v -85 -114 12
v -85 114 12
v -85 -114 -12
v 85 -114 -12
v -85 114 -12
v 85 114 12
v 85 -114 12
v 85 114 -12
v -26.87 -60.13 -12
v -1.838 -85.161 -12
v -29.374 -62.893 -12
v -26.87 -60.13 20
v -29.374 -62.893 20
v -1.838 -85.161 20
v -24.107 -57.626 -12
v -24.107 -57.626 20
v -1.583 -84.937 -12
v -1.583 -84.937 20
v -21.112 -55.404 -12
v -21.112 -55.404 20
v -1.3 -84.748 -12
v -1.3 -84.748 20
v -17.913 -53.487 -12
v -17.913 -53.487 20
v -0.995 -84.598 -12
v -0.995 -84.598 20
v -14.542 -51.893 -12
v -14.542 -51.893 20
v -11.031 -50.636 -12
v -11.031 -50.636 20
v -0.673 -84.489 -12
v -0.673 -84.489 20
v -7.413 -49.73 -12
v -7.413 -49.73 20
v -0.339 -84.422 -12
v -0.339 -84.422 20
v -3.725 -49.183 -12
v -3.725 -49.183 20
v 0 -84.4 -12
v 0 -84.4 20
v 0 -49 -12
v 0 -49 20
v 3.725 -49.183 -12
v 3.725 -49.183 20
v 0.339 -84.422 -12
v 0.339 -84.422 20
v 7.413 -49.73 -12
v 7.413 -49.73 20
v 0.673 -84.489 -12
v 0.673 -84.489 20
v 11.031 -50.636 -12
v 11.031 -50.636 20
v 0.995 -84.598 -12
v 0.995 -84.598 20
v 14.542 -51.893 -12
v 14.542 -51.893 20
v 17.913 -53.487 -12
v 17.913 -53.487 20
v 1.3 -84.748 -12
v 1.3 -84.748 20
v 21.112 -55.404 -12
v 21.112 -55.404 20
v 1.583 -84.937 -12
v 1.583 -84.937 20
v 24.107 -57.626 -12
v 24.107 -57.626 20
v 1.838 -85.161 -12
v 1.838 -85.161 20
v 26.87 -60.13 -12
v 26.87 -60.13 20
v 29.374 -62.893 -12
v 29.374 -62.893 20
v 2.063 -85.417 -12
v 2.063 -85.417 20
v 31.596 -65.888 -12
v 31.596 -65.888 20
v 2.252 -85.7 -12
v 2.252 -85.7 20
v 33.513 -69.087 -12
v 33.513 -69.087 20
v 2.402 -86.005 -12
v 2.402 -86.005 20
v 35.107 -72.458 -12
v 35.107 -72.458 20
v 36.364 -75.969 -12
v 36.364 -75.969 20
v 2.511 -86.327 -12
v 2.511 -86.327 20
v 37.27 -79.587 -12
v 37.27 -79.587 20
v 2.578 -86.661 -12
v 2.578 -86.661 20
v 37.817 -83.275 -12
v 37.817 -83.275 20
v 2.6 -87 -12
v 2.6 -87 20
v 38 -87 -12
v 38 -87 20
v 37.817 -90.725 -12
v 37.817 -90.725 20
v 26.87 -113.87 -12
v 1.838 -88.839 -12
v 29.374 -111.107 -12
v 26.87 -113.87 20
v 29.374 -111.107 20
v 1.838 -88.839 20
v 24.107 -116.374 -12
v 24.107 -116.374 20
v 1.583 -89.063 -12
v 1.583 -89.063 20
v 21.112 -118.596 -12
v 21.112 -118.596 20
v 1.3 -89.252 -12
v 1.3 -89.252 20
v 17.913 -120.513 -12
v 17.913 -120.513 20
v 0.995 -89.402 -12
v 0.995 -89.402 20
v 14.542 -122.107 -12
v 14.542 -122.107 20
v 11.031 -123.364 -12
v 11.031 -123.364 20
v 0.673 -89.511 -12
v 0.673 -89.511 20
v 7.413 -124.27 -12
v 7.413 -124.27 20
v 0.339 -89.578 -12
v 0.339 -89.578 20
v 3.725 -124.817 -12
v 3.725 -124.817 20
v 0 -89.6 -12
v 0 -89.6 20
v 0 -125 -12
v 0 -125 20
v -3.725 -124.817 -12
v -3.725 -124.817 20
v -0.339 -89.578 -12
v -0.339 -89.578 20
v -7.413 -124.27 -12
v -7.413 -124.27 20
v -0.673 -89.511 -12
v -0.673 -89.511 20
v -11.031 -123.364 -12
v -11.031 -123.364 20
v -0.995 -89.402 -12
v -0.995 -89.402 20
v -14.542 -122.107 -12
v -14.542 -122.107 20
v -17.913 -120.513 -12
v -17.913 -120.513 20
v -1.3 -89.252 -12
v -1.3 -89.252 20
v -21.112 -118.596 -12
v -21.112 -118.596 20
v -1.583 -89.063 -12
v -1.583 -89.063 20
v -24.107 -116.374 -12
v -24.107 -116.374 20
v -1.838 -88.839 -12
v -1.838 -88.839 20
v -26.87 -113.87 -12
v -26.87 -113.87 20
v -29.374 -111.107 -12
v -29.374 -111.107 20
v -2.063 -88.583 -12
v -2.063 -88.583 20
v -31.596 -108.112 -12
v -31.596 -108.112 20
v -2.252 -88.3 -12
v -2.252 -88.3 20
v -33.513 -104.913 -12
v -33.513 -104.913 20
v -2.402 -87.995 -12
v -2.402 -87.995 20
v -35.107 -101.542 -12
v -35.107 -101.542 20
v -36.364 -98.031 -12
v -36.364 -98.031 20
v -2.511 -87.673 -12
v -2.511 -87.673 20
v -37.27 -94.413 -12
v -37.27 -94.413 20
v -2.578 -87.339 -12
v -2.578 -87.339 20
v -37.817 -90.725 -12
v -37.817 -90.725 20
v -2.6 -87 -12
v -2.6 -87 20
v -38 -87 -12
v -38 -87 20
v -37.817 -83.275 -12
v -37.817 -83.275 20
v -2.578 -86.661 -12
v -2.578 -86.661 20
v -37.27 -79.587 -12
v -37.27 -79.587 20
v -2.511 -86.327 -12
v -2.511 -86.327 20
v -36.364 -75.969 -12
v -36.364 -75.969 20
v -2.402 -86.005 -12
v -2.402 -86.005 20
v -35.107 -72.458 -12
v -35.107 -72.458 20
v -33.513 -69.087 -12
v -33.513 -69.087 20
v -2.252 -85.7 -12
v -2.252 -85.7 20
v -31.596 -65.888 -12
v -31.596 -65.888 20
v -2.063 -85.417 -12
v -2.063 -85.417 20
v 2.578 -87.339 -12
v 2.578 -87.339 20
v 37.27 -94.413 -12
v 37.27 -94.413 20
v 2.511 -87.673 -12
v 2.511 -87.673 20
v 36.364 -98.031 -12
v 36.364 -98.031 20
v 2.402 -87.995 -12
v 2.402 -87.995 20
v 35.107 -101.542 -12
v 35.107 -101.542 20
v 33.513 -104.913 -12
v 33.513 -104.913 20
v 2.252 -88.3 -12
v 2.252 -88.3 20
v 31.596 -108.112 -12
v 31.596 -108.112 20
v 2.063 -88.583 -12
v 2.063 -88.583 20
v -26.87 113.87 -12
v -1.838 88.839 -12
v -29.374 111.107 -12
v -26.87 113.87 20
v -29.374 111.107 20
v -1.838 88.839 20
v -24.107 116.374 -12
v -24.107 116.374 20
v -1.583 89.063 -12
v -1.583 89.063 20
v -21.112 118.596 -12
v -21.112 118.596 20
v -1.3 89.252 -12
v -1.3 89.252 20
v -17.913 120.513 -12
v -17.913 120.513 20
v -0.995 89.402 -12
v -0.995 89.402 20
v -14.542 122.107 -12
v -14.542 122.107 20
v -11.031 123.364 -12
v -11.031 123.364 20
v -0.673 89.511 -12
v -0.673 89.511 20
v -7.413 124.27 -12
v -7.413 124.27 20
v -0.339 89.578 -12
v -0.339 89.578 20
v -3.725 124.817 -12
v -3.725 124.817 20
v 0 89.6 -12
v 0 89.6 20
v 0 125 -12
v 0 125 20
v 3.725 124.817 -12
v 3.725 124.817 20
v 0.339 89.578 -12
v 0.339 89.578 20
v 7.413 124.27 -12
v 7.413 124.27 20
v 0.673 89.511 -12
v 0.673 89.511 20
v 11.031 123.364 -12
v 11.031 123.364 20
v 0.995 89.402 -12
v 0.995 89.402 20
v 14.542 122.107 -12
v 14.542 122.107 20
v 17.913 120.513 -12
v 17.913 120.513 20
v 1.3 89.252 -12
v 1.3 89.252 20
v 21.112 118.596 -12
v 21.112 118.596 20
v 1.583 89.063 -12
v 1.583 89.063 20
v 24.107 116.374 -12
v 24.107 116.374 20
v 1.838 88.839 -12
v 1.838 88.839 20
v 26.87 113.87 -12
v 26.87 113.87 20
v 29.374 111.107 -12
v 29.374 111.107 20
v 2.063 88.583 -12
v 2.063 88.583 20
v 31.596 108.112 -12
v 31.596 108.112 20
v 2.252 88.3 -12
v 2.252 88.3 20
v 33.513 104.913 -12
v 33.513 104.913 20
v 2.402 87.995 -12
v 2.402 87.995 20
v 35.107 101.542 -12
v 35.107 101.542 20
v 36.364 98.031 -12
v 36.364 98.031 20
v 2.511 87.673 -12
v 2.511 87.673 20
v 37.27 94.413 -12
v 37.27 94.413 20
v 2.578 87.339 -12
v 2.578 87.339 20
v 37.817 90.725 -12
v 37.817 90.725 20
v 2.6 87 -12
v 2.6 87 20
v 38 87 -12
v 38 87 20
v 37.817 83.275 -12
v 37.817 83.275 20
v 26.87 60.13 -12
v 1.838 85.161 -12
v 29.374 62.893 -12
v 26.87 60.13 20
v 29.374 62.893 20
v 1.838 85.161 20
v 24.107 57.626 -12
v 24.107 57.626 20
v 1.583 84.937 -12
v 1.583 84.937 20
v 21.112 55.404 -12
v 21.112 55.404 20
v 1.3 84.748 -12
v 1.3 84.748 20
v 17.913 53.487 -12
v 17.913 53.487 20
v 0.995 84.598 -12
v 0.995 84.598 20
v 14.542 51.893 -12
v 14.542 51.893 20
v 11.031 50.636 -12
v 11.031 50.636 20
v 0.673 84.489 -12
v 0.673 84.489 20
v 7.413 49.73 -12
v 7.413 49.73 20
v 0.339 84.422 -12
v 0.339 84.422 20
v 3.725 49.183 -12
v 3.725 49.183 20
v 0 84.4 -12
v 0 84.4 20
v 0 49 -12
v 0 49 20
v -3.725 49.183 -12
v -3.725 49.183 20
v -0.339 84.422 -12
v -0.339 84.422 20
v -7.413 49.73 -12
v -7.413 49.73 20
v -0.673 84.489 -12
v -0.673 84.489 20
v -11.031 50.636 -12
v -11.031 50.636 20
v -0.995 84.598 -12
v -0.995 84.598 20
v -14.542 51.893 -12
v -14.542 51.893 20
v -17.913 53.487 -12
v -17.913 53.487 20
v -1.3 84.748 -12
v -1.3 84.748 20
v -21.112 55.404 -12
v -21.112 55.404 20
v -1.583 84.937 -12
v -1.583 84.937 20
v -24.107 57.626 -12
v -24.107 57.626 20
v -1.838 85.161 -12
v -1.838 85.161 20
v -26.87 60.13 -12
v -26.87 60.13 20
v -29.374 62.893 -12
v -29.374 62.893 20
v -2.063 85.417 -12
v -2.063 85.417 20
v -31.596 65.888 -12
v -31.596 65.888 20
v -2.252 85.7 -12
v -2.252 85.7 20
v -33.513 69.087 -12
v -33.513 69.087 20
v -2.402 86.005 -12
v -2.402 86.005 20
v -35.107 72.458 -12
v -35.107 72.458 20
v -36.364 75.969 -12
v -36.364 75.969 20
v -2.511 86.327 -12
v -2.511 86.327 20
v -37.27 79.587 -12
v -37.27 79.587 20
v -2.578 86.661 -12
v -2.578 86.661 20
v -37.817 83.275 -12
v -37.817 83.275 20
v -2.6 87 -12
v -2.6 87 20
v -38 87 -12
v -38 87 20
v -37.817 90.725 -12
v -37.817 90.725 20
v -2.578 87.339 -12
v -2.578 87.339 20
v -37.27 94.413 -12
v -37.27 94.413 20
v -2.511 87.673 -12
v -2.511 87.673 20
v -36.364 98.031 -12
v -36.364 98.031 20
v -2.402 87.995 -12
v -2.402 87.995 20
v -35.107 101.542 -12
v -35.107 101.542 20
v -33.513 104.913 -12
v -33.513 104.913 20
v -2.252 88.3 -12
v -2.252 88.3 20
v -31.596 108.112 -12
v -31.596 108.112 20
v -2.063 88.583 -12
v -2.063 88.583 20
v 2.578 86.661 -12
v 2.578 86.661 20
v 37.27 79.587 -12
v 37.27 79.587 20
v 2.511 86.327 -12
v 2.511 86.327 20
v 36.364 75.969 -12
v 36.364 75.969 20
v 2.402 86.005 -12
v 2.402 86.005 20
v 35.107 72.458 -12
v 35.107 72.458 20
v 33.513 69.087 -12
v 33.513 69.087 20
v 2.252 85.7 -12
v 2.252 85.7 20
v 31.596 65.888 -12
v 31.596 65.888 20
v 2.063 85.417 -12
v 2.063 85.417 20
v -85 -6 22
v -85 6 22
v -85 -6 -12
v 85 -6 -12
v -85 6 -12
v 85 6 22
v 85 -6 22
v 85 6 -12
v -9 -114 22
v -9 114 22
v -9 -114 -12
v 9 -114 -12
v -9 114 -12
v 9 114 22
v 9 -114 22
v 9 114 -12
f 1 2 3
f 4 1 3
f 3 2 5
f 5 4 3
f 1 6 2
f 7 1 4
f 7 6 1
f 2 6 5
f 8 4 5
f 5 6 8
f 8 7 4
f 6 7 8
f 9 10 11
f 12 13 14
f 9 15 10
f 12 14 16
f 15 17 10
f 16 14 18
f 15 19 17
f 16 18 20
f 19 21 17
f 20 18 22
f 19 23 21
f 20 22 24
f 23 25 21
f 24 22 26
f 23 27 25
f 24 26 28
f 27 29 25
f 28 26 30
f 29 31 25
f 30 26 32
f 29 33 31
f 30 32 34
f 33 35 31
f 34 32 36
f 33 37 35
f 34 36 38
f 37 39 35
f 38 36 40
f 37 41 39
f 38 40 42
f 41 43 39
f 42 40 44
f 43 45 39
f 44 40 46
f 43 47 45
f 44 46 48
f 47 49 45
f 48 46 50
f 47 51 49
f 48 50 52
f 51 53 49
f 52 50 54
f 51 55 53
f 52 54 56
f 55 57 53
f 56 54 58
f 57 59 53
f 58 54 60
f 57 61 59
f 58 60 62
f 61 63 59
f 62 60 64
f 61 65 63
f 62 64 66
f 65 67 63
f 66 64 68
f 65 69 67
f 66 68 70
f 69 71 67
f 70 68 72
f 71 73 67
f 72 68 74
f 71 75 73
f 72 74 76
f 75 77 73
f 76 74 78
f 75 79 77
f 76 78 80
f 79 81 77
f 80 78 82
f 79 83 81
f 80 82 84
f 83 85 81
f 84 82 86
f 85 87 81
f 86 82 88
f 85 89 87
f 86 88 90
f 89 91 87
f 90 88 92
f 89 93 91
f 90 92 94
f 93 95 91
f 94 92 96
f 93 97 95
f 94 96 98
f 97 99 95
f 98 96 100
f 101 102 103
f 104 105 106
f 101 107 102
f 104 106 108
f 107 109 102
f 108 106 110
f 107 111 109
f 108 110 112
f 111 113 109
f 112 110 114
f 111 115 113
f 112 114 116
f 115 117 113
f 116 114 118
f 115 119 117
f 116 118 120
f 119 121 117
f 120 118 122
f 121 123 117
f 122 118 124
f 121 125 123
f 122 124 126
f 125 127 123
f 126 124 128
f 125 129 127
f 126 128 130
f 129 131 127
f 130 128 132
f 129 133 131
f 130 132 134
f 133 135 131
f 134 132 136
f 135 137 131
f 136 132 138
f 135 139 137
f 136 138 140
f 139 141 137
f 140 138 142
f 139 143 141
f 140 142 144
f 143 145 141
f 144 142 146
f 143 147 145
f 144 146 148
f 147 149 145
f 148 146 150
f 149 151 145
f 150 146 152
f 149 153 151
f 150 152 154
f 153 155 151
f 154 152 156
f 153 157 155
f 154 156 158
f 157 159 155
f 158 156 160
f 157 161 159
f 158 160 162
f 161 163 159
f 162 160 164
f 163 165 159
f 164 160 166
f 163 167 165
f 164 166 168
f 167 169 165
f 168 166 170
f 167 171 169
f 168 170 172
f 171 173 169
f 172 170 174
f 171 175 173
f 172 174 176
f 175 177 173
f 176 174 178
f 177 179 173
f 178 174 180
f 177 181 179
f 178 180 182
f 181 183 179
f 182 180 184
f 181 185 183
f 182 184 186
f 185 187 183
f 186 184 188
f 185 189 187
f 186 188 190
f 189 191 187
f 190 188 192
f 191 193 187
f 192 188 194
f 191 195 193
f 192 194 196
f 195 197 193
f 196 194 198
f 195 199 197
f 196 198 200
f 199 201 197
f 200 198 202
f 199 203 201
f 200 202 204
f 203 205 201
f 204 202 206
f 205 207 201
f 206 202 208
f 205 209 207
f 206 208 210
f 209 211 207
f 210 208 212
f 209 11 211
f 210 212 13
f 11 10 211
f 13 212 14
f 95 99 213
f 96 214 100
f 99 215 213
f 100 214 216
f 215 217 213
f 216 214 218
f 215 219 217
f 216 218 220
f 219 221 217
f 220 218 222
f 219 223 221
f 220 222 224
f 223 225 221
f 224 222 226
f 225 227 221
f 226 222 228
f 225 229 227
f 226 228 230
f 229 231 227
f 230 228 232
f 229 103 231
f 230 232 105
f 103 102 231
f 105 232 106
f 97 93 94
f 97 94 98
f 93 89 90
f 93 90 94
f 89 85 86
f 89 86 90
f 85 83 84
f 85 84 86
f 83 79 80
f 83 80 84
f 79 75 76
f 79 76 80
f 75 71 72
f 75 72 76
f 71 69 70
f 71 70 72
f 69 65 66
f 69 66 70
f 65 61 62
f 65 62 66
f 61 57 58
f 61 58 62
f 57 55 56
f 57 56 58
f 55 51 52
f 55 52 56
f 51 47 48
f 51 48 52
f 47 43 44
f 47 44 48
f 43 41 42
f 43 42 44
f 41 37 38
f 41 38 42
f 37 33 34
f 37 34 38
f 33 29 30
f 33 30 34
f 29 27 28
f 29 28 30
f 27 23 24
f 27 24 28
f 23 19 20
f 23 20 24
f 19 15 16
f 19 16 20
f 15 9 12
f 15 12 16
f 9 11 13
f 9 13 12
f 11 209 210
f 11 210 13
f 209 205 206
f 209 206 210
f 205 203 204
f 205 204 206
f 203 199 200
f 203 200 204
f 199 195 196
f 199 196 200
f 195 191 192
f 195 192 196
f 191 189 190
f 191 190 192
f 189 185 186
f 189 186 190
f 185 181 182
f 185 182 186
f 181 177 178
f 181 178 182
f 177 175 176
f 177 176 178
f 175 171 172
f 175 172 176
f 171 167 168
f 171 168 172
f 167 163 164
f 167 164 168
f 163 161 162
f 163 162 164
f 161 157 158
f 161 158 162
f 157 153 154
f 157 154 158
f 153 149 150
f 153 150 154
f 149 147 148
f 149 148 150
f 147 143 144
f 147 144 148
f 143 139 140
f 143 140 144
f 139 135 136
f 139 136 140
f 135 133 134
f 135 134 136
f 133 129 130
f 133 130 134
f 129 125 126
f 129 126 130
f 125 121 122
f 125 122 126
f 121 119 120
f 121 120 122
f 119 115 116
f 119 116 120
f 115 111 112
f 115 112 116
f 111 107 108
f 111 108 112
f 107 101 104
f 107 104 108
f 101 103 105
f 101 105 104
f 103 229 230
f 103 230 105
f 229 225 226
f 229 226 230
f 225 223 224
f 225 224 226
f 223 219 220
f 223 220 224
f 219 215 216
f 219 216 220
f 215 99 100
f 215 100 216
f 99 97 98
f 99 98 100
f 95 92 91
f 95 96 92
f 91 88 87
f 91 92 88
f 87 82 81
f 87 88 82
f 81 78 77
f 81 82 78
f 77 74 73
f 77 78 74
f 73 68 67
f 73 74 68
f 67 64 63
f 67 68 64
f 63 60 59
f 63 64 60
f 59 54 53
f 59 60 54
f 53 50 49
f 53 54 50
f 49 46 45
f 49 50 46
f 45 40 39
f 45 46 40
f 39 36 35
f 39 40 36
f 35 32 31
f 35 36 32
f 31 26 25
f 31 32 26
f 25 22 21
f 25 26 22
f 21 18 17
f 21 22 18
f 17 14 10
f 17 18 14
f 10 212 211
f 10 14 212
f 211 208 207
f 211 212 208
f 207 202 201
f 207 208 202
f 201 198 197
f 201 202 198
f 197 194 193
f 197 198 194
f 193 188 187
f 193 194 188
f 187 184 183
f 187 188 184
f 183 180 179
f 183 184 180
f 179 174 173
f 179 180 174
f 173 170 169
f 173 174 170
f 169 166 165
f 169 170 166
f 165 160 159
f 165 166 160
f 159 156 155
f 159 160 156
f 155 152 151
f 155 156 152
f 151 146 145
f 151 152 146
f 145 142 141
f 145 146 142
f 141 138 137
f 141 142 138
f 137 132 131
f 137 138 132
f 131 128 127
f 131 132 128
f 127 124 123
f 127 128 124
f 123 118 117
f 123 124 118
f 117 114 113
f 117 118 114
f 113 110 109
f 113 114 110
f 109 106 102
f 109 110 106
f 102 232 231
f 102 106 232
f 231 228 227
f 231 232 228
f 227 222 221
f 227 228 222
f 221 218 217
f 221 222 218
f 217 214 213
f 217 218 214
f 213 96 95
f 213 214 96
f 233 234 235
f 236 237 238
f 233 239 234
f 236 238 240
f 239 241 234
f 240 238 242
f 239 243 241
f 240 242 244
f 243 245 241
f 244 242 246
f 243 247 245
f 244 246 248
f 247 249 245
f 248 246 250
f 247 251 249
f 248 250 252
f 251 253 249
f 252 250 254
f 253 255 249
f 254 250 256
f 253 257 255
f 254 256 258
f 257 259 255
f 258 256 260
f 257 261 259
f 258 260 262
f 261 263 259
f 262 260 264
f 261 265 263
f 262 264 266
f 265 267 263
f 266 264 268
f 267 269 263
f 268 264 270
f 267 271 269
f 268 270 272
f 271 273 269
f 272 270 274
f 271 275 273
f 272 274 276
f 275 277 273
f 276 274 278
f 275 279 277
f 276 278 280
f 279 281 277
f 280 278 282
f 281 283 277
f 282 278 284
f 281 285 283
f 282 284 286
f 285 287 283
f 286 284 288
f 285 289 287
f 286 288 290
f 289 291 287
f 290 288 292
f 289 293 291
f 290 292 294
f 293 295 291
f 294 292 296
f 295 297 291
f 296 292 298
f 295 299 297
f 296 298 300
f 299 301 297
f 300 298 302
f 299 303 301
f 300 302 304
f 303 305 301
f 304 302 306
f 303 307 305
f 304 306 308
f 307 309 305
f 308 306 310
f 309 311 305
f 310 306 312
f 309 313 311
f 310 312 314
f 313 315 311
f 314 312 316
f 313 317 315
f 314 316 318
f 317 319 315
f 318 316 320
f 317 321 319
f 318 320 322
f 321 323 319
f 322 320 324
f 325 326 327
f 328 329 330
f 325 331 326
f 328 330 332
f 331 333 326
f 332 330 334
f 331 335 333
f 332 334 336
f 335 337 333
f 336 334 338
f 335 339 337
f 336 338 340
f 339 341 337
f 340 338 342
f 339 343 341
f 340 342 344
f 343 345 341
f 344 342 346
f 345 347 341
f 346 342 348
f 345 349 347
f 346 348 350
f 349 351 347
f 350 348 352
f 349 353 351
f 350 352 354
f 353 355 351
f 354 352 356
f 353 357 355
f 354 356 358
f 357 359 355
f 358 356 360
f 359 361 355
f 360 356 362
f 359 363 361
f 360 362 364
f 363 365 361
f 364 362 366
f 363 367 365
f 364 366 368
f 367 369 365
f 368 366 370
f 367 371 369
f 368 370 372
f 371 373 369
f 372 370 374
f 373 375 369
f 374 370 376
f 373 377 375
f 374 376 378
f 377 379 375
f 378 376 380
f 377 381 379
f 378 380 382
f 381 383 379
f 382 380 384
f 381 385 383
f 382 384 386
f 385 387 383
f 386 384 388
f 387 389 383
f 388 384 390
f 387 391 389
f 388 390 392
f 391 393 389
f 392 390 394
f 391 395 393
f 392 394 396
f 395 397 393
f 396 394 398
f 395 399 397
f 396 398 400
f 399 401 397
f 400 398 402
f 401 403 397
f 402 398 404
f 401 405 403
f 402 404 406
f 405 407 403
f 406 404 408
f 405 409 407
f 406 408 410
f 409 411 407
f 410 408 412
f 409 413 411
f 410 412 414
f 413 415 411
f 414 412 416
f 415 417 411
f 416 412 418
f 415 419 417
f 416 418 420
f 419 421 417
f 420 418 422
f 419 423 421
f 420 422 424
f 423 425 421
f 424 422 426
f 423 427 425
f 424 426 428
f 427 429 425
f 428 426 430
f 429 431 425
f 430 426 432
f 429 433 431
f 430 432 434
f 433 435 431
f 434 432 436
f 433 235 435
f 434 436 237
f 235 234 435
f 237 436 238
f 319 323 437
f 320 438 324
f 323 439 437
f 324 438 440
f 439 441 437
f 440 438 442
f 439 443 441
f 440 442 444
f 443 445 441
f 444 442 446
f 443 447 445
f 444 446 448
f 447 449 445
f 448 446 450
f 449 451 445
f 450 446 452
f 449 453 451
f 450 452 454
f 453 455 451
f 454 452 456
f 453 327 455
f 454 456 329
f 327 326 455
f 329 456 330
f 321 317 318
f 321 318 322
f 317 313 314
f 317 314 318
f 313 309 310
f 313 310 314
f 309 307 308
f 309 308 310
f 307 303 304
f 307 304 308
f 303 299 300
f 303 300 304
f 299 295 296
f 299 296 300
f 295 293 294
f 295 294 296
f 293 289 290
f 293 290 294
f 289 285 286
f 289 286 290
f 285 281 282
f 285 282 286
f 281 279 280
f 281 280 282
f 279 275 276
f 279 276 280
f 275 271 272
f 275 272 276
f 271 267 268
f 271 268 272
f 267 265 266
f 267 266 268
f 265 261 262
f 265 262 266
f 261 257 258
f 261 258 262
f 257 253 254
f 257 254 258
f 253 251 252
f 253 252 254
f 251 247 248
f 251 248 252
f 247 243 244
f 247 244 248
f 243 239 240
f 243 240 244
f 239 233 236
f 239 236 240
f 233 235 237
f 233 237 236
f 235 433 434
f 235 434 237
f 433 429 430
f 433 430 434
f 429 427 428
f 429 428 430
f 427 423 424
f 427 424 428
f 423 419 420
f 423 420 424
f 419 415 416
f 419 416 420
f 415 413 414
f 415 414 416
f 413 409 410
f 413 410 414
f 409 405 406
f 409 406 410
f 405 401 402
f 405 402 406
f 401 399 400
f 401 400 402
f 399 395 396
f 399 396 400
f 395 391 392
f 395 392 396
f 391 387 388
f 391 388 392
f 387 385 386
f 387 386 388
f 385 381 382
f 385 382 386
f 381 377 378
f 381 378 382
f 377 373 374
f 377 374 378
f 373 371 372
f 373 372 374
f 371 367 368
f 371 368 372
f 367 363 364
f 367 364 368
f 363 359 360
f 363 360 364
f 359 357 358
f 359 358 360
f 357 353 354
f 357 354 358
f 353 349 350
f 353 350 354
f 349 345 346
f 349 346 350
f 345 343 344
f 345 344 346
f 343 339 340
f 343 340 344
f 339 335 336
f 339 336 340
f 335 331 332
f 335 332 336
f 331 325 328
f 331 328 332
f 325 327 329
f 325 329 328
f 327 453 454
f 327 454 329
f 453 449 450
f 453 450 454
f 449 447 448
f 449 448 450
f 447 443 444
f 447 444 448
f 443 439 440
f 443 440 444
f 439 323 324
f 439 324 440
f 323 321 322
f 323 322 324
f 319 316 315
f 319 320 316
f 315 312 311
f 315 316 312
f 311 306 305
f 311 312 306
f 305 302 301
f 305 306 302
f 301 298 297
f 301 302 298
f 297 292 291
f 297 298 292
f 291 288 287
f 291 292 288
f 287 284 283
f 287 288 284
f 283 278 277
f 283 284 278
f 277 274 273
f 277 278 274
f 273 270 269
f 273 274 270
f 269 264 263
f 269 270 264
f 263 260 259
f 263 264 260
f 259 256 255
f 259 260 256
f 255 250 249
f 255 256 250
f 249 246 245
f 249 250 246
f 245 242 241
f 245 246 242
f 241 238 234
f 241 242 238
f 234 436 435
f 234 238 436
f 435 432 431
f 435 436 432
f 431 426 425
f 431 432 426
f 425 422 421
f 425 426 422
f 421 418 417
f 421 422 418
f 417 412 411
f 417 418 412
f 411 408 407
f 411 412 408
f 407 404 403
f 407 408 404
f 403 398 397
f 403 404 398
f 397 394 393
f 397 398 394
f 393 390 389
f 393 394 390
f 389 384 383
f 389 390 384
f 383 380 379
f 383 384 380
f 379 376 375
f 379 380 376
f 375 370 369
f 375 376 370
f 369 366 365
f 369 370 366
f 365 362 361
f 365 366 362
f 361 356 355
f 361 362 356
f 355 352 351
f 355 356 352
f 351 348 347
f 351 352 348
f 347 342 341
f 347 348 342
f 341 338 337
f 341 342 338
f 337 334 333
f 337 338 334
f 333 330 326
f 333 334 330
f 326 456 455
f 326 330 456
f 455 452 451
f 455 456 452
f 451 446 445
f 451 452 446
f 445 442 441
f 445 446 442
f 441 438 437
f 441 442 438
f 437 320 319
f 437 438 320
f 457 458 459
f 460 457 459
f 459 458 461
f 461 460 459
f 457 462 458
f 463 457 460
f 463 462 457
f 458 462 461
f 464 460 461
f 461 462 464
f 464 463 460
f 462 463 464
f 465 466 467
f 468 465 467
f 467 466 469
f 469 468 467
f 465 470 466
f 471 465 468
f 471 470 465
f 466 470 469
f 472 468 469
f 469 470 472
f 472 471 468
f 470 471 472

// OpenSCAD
polyhedron(points=[[-85.0, -114.0, -12.0], [-85.0, -114.0, 12.0], [-85.0, 114.0, -12.0], [-85.0, 114.0, 12.0], [85.0, -114.0, -12.0], [85.0, -114.0, 12.0], [85.0, 114.0, -12.0], [85.0, 114.0, 12.0], [-26.870058, -60.129942, -12.0], [-29.374397, -62.893055, -12.0], [-1.838478, -85.161522, -12.0], [-26.870058, -60.129942, 20.0], [-29.374397, -62.893055, 20.0], [-1.838478, -85.161522, 20.0], [-24.106945, -57.625603, -12.0], [-24.106945, -57.625603, 20.0], [-1.58278, -84.937281, -12.0], [-1.58278, -84.937281, 20.0], [-21.111669, -55.404155, -12.0], [-21.111669, -55.404155, 20.0], [-1.3, -84.748334, -12.0], [-1.3, -84.748334, 20.0], [-17.913076, -53.486992, -12.0], [-17.913076, -53.486992, 20.0], [-0.994977, -84.597913, -12.0], [-0.994977, -84.597913, 20.0], [-14.54197, -51.892578, -12.0], [-14.54197, -51.892578, 20.0], [-11.030818, -50.636267, -12.0], [-11.030818, -50.636267, 20.0], [-0.67293, -84.488593, -12.0], [-0.67293, -84.488593, 20.0], [-7.413432, -49.730159, -12.0], [-7.413432, -49.730159, 20.0], [-0.339368, -84.422243, -12.0], [-0.339368, -84.422243, 20.0], [-3.724651, -49.18298, -12.0], [-3.724651, -49.18298, 20.0], [0.0, -84.4, -12.0], [0.0, -84.4, 20.0], [0.0, -49.0, -12.0], [0.0, -49.0, 20.0], [3.724651, -49.18298, -12.0], [3.724651, -49.18298, 20.0], [0.339368, -84.422243, -12.0], [0.339368, -84.422243, 20.0], [7.413432, -49.730159, -12.0], [7.413432, -49.730159, 20.0], [0.67293, -84.488593, -12.0], [0.67293, -84.488593, 20.0], [11.030818, -50.636267, -12.0], [11.030818, -50.636267, 20.0], [0.994977, -84.597913, -12.0], [0.994977, -84.597913, 20.0], [14.54197, -51.892578, -12.0], [14.54197, -51.892578, 20.0], [17.913076, -53.486992, -12.0], [17.913076, -53.486992, 20.0], [1.3, -84.748334, -12.0], [1.3, -84.748334, 20.0], [21.111669, -55.404155, -12.0], [21.111669, -55.404155, 20.0], [1.58278, -84.937281, -12.0], [1.58278, -84.937281, 20.0], [24.106945, -57.625603, -12.0], [24.106945, -57.625603, 20.0], [1.838478, -85.161522, -12.0], [1.838478, -85.161522, 20.0], [26.870058, -60.129942, -12.0], [26.870058, -60.129942, 20.0], [29.374397, -62.893055, -12.0], [29.374397, -62.893055, 20.0], [2.062719, -85.41722, -12.0], [2.062719, -85.41722, 20.0], [31.595845, -65.888331, -12.0], [31.595845, -65.888331, 20.0], [2.251666, -85.7, -12.0], [2.251666, -85.7, 20.0], [33.513008, -69.086924, -12.0], [33.513008, -69.086924, 20.0], [2.402087, -86.005023, -12.0], [2.402087, -86.005023, 20.0], [35.107422, -72.45803, -12.0], [35.107422, -72.45803, 20.0], [36.363733, -75.969182, -12.0], [36.363733, -75.969182, 20.0], [2.511407, -86.32707, -12.0], [2.511407, -86.32707, 20.0], [37.269841, -79.586568, -12.0], [37.269841, -79.586568, 20.0], [2.577757, -86.660632, -12.0], [2.577757, -86.660632, 20.0], [37.81702, -83.275349, -12.0], [37.81702, -83.275349, 20.0], [2.6, -87.0, -12.0], [2.6, -87.0, 20.0], [38.0, -87.0, -12.0], [38.0, -87.0, 20.0], [37.81702, -90.724651, -12.0], [37.81702, -90.724651, 20.0], [26.870058, -113.870058, -12.0], [29.374397, -111.106945, -12.0], [1.838478, -88.838478, -12.0], [26.870058, -113.870058, 20.0], [29.374397, -111.106945, 20.0], [1.838478, -88.838478, 20.0], [24.106945, -116.374397, -12.0], [24.106945, -116.374397, 20.0], [1.58278, -89.062719, -12.0], [1.58278, -89.062719, 20.0], [21.111669, -118.595845, -12.0], [21.111669, -118.595845, 20.0], [1.3, -89.251666, -12.0], [1.3, -89.251666, 20.0], [17.913076, -120.513008, -12.0], [17.913076, -120.513008, 20.0], [0.994977, -89.402087, -12.0], [0.994977, -89.402087, 20.0], [14.54197, -122.107422, -12.0], [14.54197, -122.107422, 20.0], [11.030818, -123.363733, -12.0], [11.030818, -123.363733, 20.0], [0.67293, -89.511407, -12.0], [0.67293, -89.511407, 20.0], [7.413432, -124.269841, -12.0], [7.413432, -124.269841, 20.0], [0.339368, -89.577757, -12.0], [0.339368, -89.577757, 20.0], [3.724651, -124.81702, -12.0], [3.724651, -124.81702, 20.0], [-0.0, -89.6, -12.0], [-0.0, -89.6, 20.0], [-0.0, -125.0, -12.0], [-0.0, -125.0, 20.0], [-3.724651, -124.81702, -12.0], [-3.724651, -124.81702, 20.0], [-0.339368, -89.577757, -12.0], [-0.339368, -89.577757, 20.0], [-7.413432, -124.269841, -12.0], [-7.413432, -124.269841, 20.0], [-0.67293, -89.511407, -12.0], [-0.67293, -89.511407, 20.0], [-11.030818, -123.363733, -12.0], [-11.030818, -123.363733, 20.0], [-0.994977, -89.402087, -12.0], [-0.994977, -89.402087, 20.0], [-14.54197, -122.107422, -12.0], [-14.54197, -122.107422, 20.0], [-17.913076, -120.513008, -12.0], [-17.913076, -120.513008, 20.0], [-1.3, -89.251666, -12.0], [-1.3, -89.251666, 20.0], [-21.111669, -118.595845, -12.0], [-21.111669, -118.595845, 20.0], [-1.58278, -89.062719, -12.0], [-1.58278, -89.062719, 20.0], [-24.106945, -116.374397, -12.0], [-24.106945, -116.374397, 20.0], [-1.838478, -88.838478, -12.0], [-1.838478, -88.838478, 20.0], [-26.870058, -113.870058, -12.0], [-26.870058, -113.870058, 20.0], [-29.374397, -111.106945, -12.0], [-29.374397, -111.106945, 20.0], [-2.062719, -88.58278, -12.0], [-2.062719, -88.58278, 20.0], [-31.595845, -108.111669, -12.0], [-31.595845, -108.111669, 20.0], [-2.251666, -88.3, -12.0], [-2.251666, -88.3, 20.0], [-33.513008, -104.913076, -12.0], [-33.513008, -104.913076, 20.0], [-2.402087, -87.994977, -12.0], [-2.402087, -87.994977, 20.0], [-35.107422, -101.54197, -12.0], [-35.107422, -101.54197, 20.0], [-36.363733, -98.030818, -12.0], [-36.363733, -98.030818, 20.0], [-2.511407, -87.67293, -12.0], [-2.511407, -87.67293, 20.0], [-37.269841, -94.413432, -12.0], [-37.269841, -94.413432, 20.0], [-2.577757, -87.339368, -12.0], [-2.577757, -87.339368, 20.0], [-37.81702, -90.724651, -12.0], [-37.81702, -90.724651, 20.0], [-2.6, -87.0, -12.0], [-2.6, -87.0, 20.0], [-38.0, -87.0, -12.0], [-38.0, -87.0, 20.0], [-37.81702, -83.275349, -12.0], [-37.81702, -83.275349, 20.0], [-2.577757, -86.660632, -12.0], [-2.577757, -86.660632, 20.0], [-37.269841, -79.586568, -12.0], [-37.269841, -79.586568, 20.0], [-2.511407, -86.32707, -12.0], [-2.511407, -86.32707, 20.0], [-36.363733, -75.969182, -12.0], [-36.363733, -75.969182, 20.0], [-2.402087, -86.005023, -12.0], [-2.402087, -86.005023, 20.0], [-35.107422, -72.45803, -12.0], [-35.107422, -72.45803, 20.0], [-33.513008, -69.086924, -12.0], [-33.513008, -69.086924, 20.0], [-2.251666, -85.7, -12.0], [-2.251666, -85.7, 20.0], [-31.595845, -65.888331, -12.0], [-31.595845, -65.888331, 20.0], [-2.062719, -85.41722, -12.0], [-2.062719, -85.41722, 20.0], [2.577757, -87.339368, -12.0], [2.577757, -87.339368, 20.0], [37.269841, -94.413432, -12.0], [37.269841, -94.413432, 20.0], [2.511407, -87.67293, -12.0], [2.511407, -87.67293, 20.0], [36.363733, -98.030818, -12.0], [36.363733, -98.030818, 20.0], [2.402087, -87.994977, -12.0], [2.402087, -87.994977, 20.0], [35.107422, -101.54197, -12.0], [35.107422, -101.54197, 20.0], [33.513008, -104.913076, -12.0], [33.513008, -104.913076, 20.0], [2.251666, -88.3, -12.0], [2.251666, -88.3, 20.0], [31.595845, -108.111669, -12.0], [31.595845, -108.111669, 20.0], [2.062719, -88.58278, -12.0], [2.062719, -88.58278, 20.0], [-26.870058, 113.870058, -12.0], [-29.374397, 111.106945, -12.0], [-1.838478, 88.838478, -12.0], [-26.870058, 113.870058, 20.0], [-29.374397, 111.106945, 20.0], [-1.838478, 88.838478, 20.0], [-24.106945, 116.374397, -12.0], [-24.106945, 116.374397, 20.0], [-1.58278, 89.062719, -12.0], [-1.58278, 89.062719, 20.0], [-21.111669, 118.595845, -12.0], [-21.111669, 118.595845, 20.0], [-1.3, 89.251666, -12.0], [-1.3, 89.251666, 20.0], [-17.913076, 120.513008, -12.0], [-17.913076, 120.513008, 20.0], [-0.994977, 89.402087, -12.0], [-0.994977, 89.402087, 20.0], [-14.54197, 122.107422, -12.0], [-14.54197, 122.107422, 20.0], [-11.030818, 123.363733, -12.0], [-11.030818, 123.363733, 20.0], [-0.67293, 89.511407, -12.0], [-0.67293, 89.511407, 20.0], [-7.413432, 124.269841, -12.0], [-7.413432, 124.269841, 20.0], [-0.339368, 89.577757, -12.0], [-0.339368, 89.577757, 20.0], [-3.724651, 124.81702, -12.0], [-3.724651, 124.81702, 20.0], [0.0, 89.6, -12.0], [0.0, 89.6, 20.0], [0.0, 125.0, -12.0], [0.0, 125.0, 20.0], [3.724651, 124.81702, -12.0], [3.724651, 124.81702, 20.0], [0.339368, 89.577757, -12.0], [0.339368, 89.577757, 20.0], [7.413432, 124.269841, -12.0], [7.413432, 124.269841, 20.0], [0.67293, 89.511407, -12.0], [0.67293, 89.511407, 20.0], [11.030818, 123.363733, -12.0], [11.030818, 123.363733, 20.0], [0.994977, 89.402087, -12.0], [0.994977, 89.402087, 20.0], [14.54197, 122.107422, -12.0], [14.54197, 122.107422, 20.0], [17.913076, 120.513008, -12.0], [17.913076, 120.513008, 20.0], [1.3, 89.251666, -12.0], [1.3, 89.251666, 20.0], [21.111669, 118.595845, -12.0], [21.111669, 118.595845, 20.0], [1.58278, 89.062719, -12.0], [1.58278, 89.062719, 20.0], [24.106945, 116.374397, -12.0], [24.106945, 116.374397, 20.0], [1.838478, 88.838478, -12.0], [1.838478, 88.838478, 20.0], [26.870058, 113.870058, -12.0], [26.870058, 113.870058, 20.0], [29.374397, 111.106945, -12.0], [29.374397, 111.106945, 20.0], [2.062719, 88.58278, -12.0], [2.062719, 88.58278, 20.0], [31.595845, 108.111669, -12.0], [31.595845, 108.111669, 20.0], [2.251666, 88.3, -12.0], [2.251666, 88.3, 20.0], [33.513008, 104.913076, -12.0], [33.513008, 104.913076, 20.0], [2.402087, 87.994977, -12.0], [2.402087, 87.994977, 20.0], [35.107422, 101.54197, -12.0], [35.107422, 101.54197, 20.0], [36.363733, 98.030818, -12.0], [36.363733, 98.030818, 20.0], [2.511407, 87.67293, -12.0], [2.511407, 87.67293, 20.0], [37.269841, 94.413432, -12.0], [37.269841, 94.413432, 20.0], [2.577757, 87.339368, -12.0], [2.577757, 87.339368, 20.0], [37.81702, 90.724651, -12.0], [37.81702, 90.724651, 20.0], [2.6, 87.0, -12.0], [2.6, 87.0, 20.0], [38.0, 87.0, -12.0], [38.0, 87.0, 20.0], [37.81702, 83.275349, -12.0], [37.81702, 83.275349, 20.0], [26.870058, 60.129942, -12.0], [29.374397, 62.893055, -12.0], [1.838478, 85.161522, -12.0], [26.870058, 60.129942, 20.0], [29.374397, 62.893055, 20.0], [1.838478, 85.161522, 20.0], [24.106945, 57.625603, -12.0], [24.106945, 57.625603, 20.0], [1.58278, 84.937281, -12.0], [1.58278, 84.937281, 20.0], [21.111669, 55.404155, -12.0], [21.111669, 55.404155, 20.0], [1.3, 84.748334, -12.0], [1.3, 84.748334, 20.0], [17.913076, 53.486992, -12.0], [17.913076, 53.486992, 20.0], [0.994977, 84.597913, -12.0], [0.994977, 84.597913, 20.0], [14.54197, 51.892578, -12.0], [14.54197, 51.892578, 20.0], [11.030818, 50.636267, -12.0], [11.030818, 50.636267, 20.0], [0.67293, 84.488593, -12.0], [0.67293, 84.488593, 20.0], [7.413432, 49.730159, -12.0], [7.413432, 49.730159, 20.0], [0.339368, 84.422243, -12.0], [0.339368, 84.422243, 20.0], [3.724651, 49.18298, -12.0], [3.724651, 49.18298, 20.0], [-0.0, 84.4, -12.0], [-0.0, 84.4, 20.0], [-0.0, 49.0, -12.0], [-0.0, 49.0, 20.0], [-3.724651, 49.18298, -12.0], [-3.724651, 49.18298, 20.0], [-0.339368, 84.422243, -12.0], [-0.339368, 84.422243, 20.0], [-7.413432, 49.730159, -12.0], [-7.413432, 49.730159, 20.0], [-0.67293, 84.488593, -12.0], [-0.67293, 84.488593, 20.0], [-11.030818, 50.636267, -12.0], [-11.030818, 50.636267, 20.0], [-0.994977, 84.597913, -12.0], [-0.994977, 84.597913, 20.0], [-14.54197, 51.892578, -12.0], [-14.54197, 51.892578, 20.0], [-17.913076, 53.486992, -12.0], [-17.913076, 53.486992, 20.0], [-1.3, 84.748334, -12.0], [-1.3, 84.748334, 20.0], [-21.111669, 55.404155, -12.0], [-21.111669, 55.404155, 20.0], [-1.58278, 84.937281, -12.0], [-1.58278, 84.937281, 20.0], [-24.106945, 57.625603, -12.0], [-24.106945, 57.625603, 20.0], [-1.838478, 85.161522, -12.0], [-1.838478, 85.161522, 20.0], [-26.870058, 60.129942, -12.0], [-26.870058, 60.129942, 20.0], [-29.374397, 62.893055, -12.0], [-29.374397, 62.893055, 20.0], [-2.062719, 85.41722, -12.0], [-2.062719, 85.41722, 20.0], [-31.595845, 65.888331, -12.0], [-31.595845, 65.888331, 20.0], [-2.251666, 85.7, -12.0], [-2.251666, 85.7, 20.0], [-33.513008, 69.086924, -12.0], [-33.513008, 69.086924, 20.0], [-2.402087, 86.005023, -12.0], [-2.402087, 86.005023, 20.0], [-35.107422, 72.45803, -12.0], [-35.107422, 72.45803, 20.0], [-36.363733, 75.969182, -12.0], [-36.363733, 75.969182, 20.0], [-2.511407, 86.32707, -12.0], [-2.511407, 86.32707, 20.0], [-37.269841, 79.586568, -12.0], [-37.269841, 79.586568, 20.0], [-2.577757, 86.660632, -12.0], [-2.577757, 86.660632, 20.0], [-37.81702, 83.275349, -12.0], [-37.81702, 83.275349, 20.0], [-2.6, 87.0, -12.0], [-2.6, 87.0, 20.0], [-38.0, 87.0, -12.0], [-38.0, 87.0, 20.0], [-37.81702, 90.724651, -12.0], [-37.81702, 90.724651, 20.0], [-2.577757, 87.339368, -12.0], [-2.577757, 87.339368, 20.0], [-37.269841, 94.413432, -12.0], [-37.269841, 94.413432, 20.0], [-2.511407, 87.67293, -12.0], [-2.511407, 87.67293, 20.0], [-36.363733, 98.030818, -12.0], [-36.363733, 98.030818, 20.0], [-2.402087, 87.994977, -12.0], [-2.402087, 87.994977, 20.0], [-35.107422, 101.54197, -12.0], [-35.107422, 101.54197, 20.0], [-33.513008, 104.913076, -12.0], [-33.513008, 104.913076, 20.0], [-2.251666, 88.3, -12.0], [-2.251666, 88.3, 20.0], [-31.595845, 108.111669, -12.0], [-31.595845, 108.111669, 20.0], [-2.062719, 88.58278, -12.0], [-2.062719, 88.58278, 20.0], [2.577757, 86.660632, -12.0], [2.577757, 86.660632, 20.0], [37.269841, 79.586568, -12.0], [37.269841, 79.586568, 20.0], [2.511407, 86.32707, -12.0], [2.511407, 86.32707, 20.0], [36.363733, 75.969182, -12.0], [36.363733, 75.969182, 20.0], [2.402087, 86.005023, -12.0], [2.402087, 86.005023, 20.0], [35.107422, 72.45803, -12.0], [35.107422, 72.45803, 20.0], [33.513008, 69.086924, -12.0], [33.513008, 69.086924, 20.0], [2.251666, 85.7, -12.0], [2.251666, 85.7, 20.0], [31.595845, 65.888331, -12.0], [31.595845, 65.888331, 20.0], [2.062719, 85.41722, -12.0], [2.062719, 85.41722, 20.0], [-85.0, -6.0, -12.0], [-85.0, -6.0, 22.0], [-85.0, 6.0, -12.0], [-85.0, 6.0, 22.0], [85.0, -6.0, -12.0], [85.0, -6.0, 22.0], [85.0, 6.0, -12.0], [85.0, 6.0, 22.0], [-9.0, -114.0, -12.0], [-9.0, -114.0, 22.0], [-9.0, 114.0, -12.0], [-9.0, 114.0, 22.0], [9.0, -114.0, -12.0], [9.0, -114.0, 22.0], [9.0, 114.0, -12.0], [9.0, 114.0, 22.0]], faces=[[1, 3, 0], [4, 1, 0], [0, 3, 2], [2, 4, 0], [1, 7, 3], [5, 1, 4], [5, 7, 1], [3, 7, 2], [6, 4, 2], [2, 7, 6], [6, 5, 4], [7, 5, 6], [8, 10, 9], [11, 12, 13], [8, 14, 10], [11, 13, 15], [14, 16, 10], [15, 13, 17], [14, 18, 16], [15, 17, 19], [18, 20, 16], [19, 17, 21], [18, 22, 20], [19, 21, 23], [22, 24, 20], [23, 21, 25], [22, 26, 24], [23, 25, 27], [26, 28, 24], [27, 25, 29], [28, 30, 24], [29, 25, 31], [28, 32, 30], [29, 31, 33], [32, 34, 30], [33, 31, 35], [32, 36, 34], [33, 35, 37], [36, 38, 34], [37, 35, 39], [36, 40, 38], [37, 39, 41], [40, 42, 38], [41, 39, 43], [42, 44, 38], [43, 39, 45], [42, 46, 44], [43, 45, 47], [46, 48, 44], [47, 45, 49], [46, 50, 48], [47, 49, 51], [50, 52, 48], [51, 49, 53], [50, 54, 52], [51, 53, 55], [54, 56, 52], [55, 53, 57], [56, 58, 52], [57, 53, 59], [56, 60, 58], [57, 59, 61], [60, 62, 58], [61, 59, 63], [60, 64, 62], [61, 63, 65], [64, 66, 62], [65, 63, 67], [64, 68, 66], [65, 67, 69], [68, 70, 66], [69, 67, 71], [70, 72, 66], [71, 67, 73], [70, 74, 72], [71, 73, 75], [74, 76, 72], [75, 73, 77], [74, 78, 76], [75, 77, 79], [78, 80, 76], [79, 77, 81], [78, 82, 80], [79, 81, 83], [82, 84, 80], [83, 81, 85], [84, 86, 80], [85, 81, 87], [84, 88, 86], [85, 87, 89], [88, 90, 86], [89, 87, 91], [88, 92, 90], [89, 91, 93], [92, 94, 90], [93, 91, 95], [92, 96, 94], [93, 95, 97], [96, 98, 94], [97, 95, 99], [100, 102, 101], [103, 104, 105], [100, 106, 102], [103, 105, 107], [106, 108, 102], [107, 105, 109], [106, 110, 108], [107, 109, 111], [110, 112, 108], [111, 109, 113], [110, 114, 112], [111, 113, 115], [114, 116, 112], [115, 113, 117], [114, 118, 116], [115, 117, 119], [118, 120, 116], [119, 117, 121], [120, 122, 116], [121, 117, 123], [120, 124, 122], [121, 123, 125], [124, 126, 122], [125, 123, 127], [124, 128, 126], [125, 127, 129], [128, 130, 126], [129, 127, 131], [128, 132, 130], [129, 131, 133], [132, 134, 130], [133, 131, 135], [134, 136, 130], [135, 131, 137], [134, 138, 136], [135, 137, 139], [138, 140, 136], [139, 137, 141], [138, 142, 140], [139, 141, 143], [142, 144, 140], [143, 141, 145], [142, 146, 144], [143, 145, 147], [146, 148, 144], [147, 145, 149], [148, 150, 144], [149, 145, 151], [148, 152, 150], [149, 151, 153], [152, 154, 150], [153, 151, 155], [152, 156, 154], [153, 155, 157], [156, 158, 154], [157, 155, 159], [156, 160, 158], [157, 159, 161], [160, 162, 158], [161, 159, 163], [162, 164, 158], [163, 159, 165], [162, 166, 164], [163, 165, 167], [166, 168, 164], [167, 165, 169], [166, 170, 168], [167, 169, 171], [170, 172, 168], [171, 169, 173], [170, 174, 172], [171, 173, 175], [174, 176, 172], [175, 173, 177], [176, 178, 172], [177, 173, 179], [176, 180, 178], [177, 179, 181], [180, 182, 178], [181, 179, 183], [180, 184, 182], [181, 183, 185], [184, 186, 182], [185, 183, 187], [184, 188, 186], [185, 187, 189], [188, 190, 186], [189, 187, 191], [190, 192, 186], [191, 187, 193], [190, 194, 192], [191, 193, 195], [194, 196, 192], [195, 193, 197], [194, 198, 196], [195, 197, 199], [198, 200, 196], [199, 197, 201], [198, 202, 200], [199, 201, 203], [202, 204, 200], [203, 201, 205], [204, 206, 200], [205, 201, 207], [204, 208, 206], [205, 207, 209], [208, 210, 206], [209, 207, 211], [208, 9, 210], [209, 211, 12], [9, 10, 210], [12, 211, 13], [94, 98, 212], [95, 213, 99], [98, 214, 212], [99, 213, 215], [214, 216, 212], [215, 213, 217], [214, 218, 216], [215, 217, 219], [218, 220, 216], [219, 217, 221], [218, 222, 220], [219, 221, 223], [222, 224, 220], [223, 221, 225], [224, 226, 220], [225, 221, 227], [224, 228, 226], [225, 227, 229], [228, 230, 226], [229, 227, 231], [228, 101, 230], [229, 231, 104], [101, 102, 230], [104, 231, 105], [96, 92, 93], [96, 93, 97], [92, 88, 89], [92, 89, 93], [88, 84, 85], [88, 85, 89], [84, 82, 83], [84, 83, 85], [82, 78, 79], [82, 79, 83], [78, 74, 75], [78, 75, 79], [74, 70, 71], [74, 71, 75], [70, 68, 69], [70, 69, 71], [68, 64, 65], [68, 65, 69], [64, 60, 61], [64, 61, 65], [60, 56, 57], [60, 57, 61], [56, 54, 55], [56, 55, 57], [54, 50, 51], [54, 51, 55], [50, 46, 47], [50, 47, 51], [46, 42, 43], [46, 43, 47], [42, 40, 41], [42, 41, 43], [40, 36, 37], [40, 37, 41], [36, 32, 33], [36, 33, 37], [32, 28, 29], [32, 29, 33], [28, 26, 27], [28, 27, 29], [26, 22, 23], [26, 23, 27], [22, 18, 19], [22, 19, 23], [18, 14, 15], [18, 15, 19], [14, 8, 11], [14, 11, 15], [8, 9, 12], [8, 12, 11], [9, 208, 209], [9, 209, 12], [208, 204, 205], [208, 205, 209], [204, 202, 203], [204, 203, 205], [202, 198, 199], [202, 199, 203], [198, 194, 195], [198, 195, 199], [194, 190, 191], [194, 191, 195], [190, 188, 189], [190, 189, 191], [188, 184, 185], [188, 185, 189], [184, 180, 181], [184, 181, 185], [180, 176, 177], [180, 177, 181], [176, 174, 175], [176, 175, 177], [174, 170, 171], [174, 171, 175], [170, 166, 167], [170, 167, 171], [166, 162, 163], [166, 163, 167], [162, 160, 161], [162, 161, 163], [160, 156, 157], [160, 157, 161], [156, 152, 153], [156, 153, 157], [152, 148, 149], [152, 149, 153], [148, 146, 147], [148, 147, 149], [146, 142, 143], [146, 143, 147], [142, 138, 139], [142, 139, 143], [138, 134, 135], [138, 135, 139], [134, 132, 133], [134, 133, 135], [132, 128, 129], [132, 129, 133], [128, 124, 125], [128, 125, 129], [124, 120, 121], [124, 121, 125], [120, 118, 119], [120, 119, 121], [118, 114, 115], [118, 115, 119], [114, 110, 111], [114, 111, 115], [110, 106, 107], [110, 107, 111], [106, 100, 103], [106, 103, 107], [100, 101, 104], [100, 104, 103], [101, 228, 229], [101, 229, 104], [228, 224, 225], [228, 225, 229], [224, 222, 223], [224, 223, 225], [222, 218, 219], [222, 219, 223], [218, 214, 215], [218, 215, 219], [214, 98, 99], [214, 99, 215], [98, 96, 97], [98, 97, 99], [94, 91, 90], [94, 95, 91], [90, 87, 86], [90, 91, 87], [86, 81, 80], [86, 87, 81], [80, 77, 76], [80, 81, 77], [76, 73, 72], [76, 77, 73], [72, 67, 66], [72, 73, 67], [66, 63, 62], [66, 67, 63], [62, 59, 58], [62, 63, 59], [58, 53, 52], [58, 59, 53], [52, 49, 48], [52, 53, 49], [48, 45, 44], [48, 49, 45], [44, 39, 38], [44, 45, 39], [38, 35, 34], [38, 39, 35], [34, 31, 30], [34, 35, 31], [30, 25, 24], [30, 31, 25], [24, 21, 20], [24, 25, 21], [20, 17, 16], [20, 21, 17], [16, 13, 10], [16, 17, 13], [10, 211, 210], [10, 13, 211], [210, 207, 206], [210, 211, 207], [206, 201, 200], [206, 207, 201], [200, 197, 196], [200, 201, 197], [196, 193, 192], [196, 197, 193], [192, 187, 186], [192, 193, 187], [186, 183, 182], [186, 187, 183], [182, 179, 178], [182, 183, 179], [178, 173, 172], [178, 179, 173], [172, 169, 168], [172, 173, 169], [168, 165, 164], [168, 169, 165], [164, 159, 158], [164, 165, 159], [158, 155, 154], [158, 159, 155], [154, 151, 150], [154, 155, 151], [150, 145, 144], [150, 151, 145], [144, 141, 140], [144, 145, 141], [140, 137, 136], [140, 141, 137], [136, 131, 130], [136, 137, 131], [130, 127, 126], [130, 131, 127], [126, 123, 122], [126, 127, 123], [122, 117, 116], [122, 123, 117], [116, 113, 112], [116, 117, 113], [112, 109, 108], [112, 113, 109], [108, 105, 102], [108, 109, 105], [102, 231, 230], [102, 105, 231], [230, 227, 226], [230, 231, 227], [226, 221, 220], [226, 227, 221], [220, 217, 216], [220, 221, 217], [216, 213, 212], [216, 217, 213], [212, 95, 94], [212, 213, 95], [232, 234, 233], [235, 236, 237], [232, 238, 234], [235, 237, 239], [238, 240, 234], [239, 237, 241], [238, 242, 240], [239, 241, 243], [242, 244, 240], [243, 241, 245], [242, 246, 244], [243, 245, 247], [246, 248, 244], [247, 245, 249], [246, 250, 248], [247, 249, 251], [250, 252, 248], [251, 249, 253], [252, 254, 248], [253, 249, 255], [252, 256, 254], [253, 255, 257], [256, 258, 254], [257, 255, 259], [256, 260, 258], [257, 259, 261], [260, 262, 258], [261, 259, 263], [260, 264, 262], [261, 263, 265], [264, 266, 262], [265, 263, 267], [266, 268, 262], [267, 263, 269], [266, 270, 268], [267, 269, 271], [270, 272, 268], [271, 269, 273], [270, 274, 272], [271, 273, 275], [274, 276, 272], [275, 273, 277], [274, 278, 276], [275, 277, 279], [278, 280, 276], [279, 277, 281], [280, 282, 276], [281, 277, 283], [280, 284, 282], [281, 283, 285], [284, 286, 282], [285, 283, 287], [284, 288, 286], [285, 287, 289], [288, 290, 286], [289, 287, 291], [288, 292, 290], [289, 291, 293], [292, 294, 290], [293, 291, 295], [294, 296, 290], [295, 291, 297], [294, 298, 296], [295, 297, 299], [298, 300, 296], [299, 297, 301], [298, 302, 300], [299, 301, 303], [302, 304, 300], [303, 301, 305], [302, 306, 304], [303, 305, 307], [306, 308, 304], [307, 305, 309], [308, 310, 304], [309, 305, 311], [308, 312, 310], [309, 311, 313], [312, 314, 310], [313, 311, 315], [312, 316, 314], [313, 315, 317], [316, 318, 314], [317, 315, 319], [316, 320, 318], [317, 319, 321], [320, 322, 318], [321, 319, 323], [324, 326, 325], [327, 328, 329], [324, 330, 326], [327, 329, 331], [330, 332, 326], [331, 329, 333], [330, 334, 332], [331, 333, 335], [334, 336, 332], [335, 333, 337], [334, 338, 336], [335, 337, 339], [338, 340, 336], [339, 337, 341], [338, 342, 340], [339, 341, 343], [342, 344, 340], [343, 341, 345], [344, 346, 340], [345, 341, 347], [344, 348, 346], [345, 347, 349], [348, 350, 346], [349, 347, 351], [348, 352, 350], [349, 351, 353], [352, 354, 350], [353, 351, 355], [352, 356, 354], [353, 355, 357], [356, 358, 354], [357, 355, 359], [358, 360, 354], [359, 355, 361], [358, 362, 360], [359, 361, 363], [362, 364, 360], [363, 361, 365], [362, 366, 364], [363, 365, 367], [366, 368, 364], [367, 365, 369], [366, 370, 368], [367, 369, 371], [370, 372, 368], [371, 369, 373], [372, 374, 368], [373, 369, 375], [372, 376, 374], [373, 375, 377], [376, 378, 374], [377, 375, 379], [376, 380, 378], [377, 379, 381], [380, 382, 378], [381, 379, 383], [380, 384, 382], [381, 383, 385], [384, 386, 382], [385, 383, 387], [386, 388, 382], [387, 383, 389], [386, 390, 388], [387, 389, 391], [390, 392, 388], [391, 389, 393], [390, 394, 392], [391, 393, 395], [394, 396, 392], [395, 393, 397], [394, 398, 396], [395, 397, 399], [398, 400, 396], [399, 397, 401], [400, 402, 396], [401, 397, 403], [400, 404, 402], [401, 403, 405], [404, 406, 402], [405, 403, 407], [404, 408, 406], [405, 407, 409], [408, 410, 406], [409, 407, 411], [408, 412, 410], [409, 411, 413], [412, 414, 410], [413, 411, 415], [414, 416, 410], [415, 411, 417], [414, 418, 416], [415, 417, 419], [418, 420, 416], [419, 417, 421], [418, 422, 420], [419, 421, 423], [422, 424, 420], [423, 421, 425], [422, 426, 424], [423, 425, 427], [426, 428, 424], [427, 425, 429], [428, 430, 424], [429, 425, 431], [428, 432, 430], [429, 431, 433], [432, 434, 430], [433, 431, 435], [432, 233, 434], [433, 435, 236], [233, 234, 434], [236, 435, 237], [318, 322, 436], [319, 437, 323], [322, 438, 436], [323, 437, 439], [438, 440, 436], [439, 437, 441], [438, 442, 440], [439, 441, 443], [442, 444, 440], [443, 441, 445], [442, 446, 444], [443, 445, 447], [446, 448, 444], [447, 445, 449], [448, 450, 444], [449, 445, 451], [448, 452, 450], [449, 451, 453], [452, 454, 450], [453, 451, 455], [452, 325, 454], [453, 455, 328], [325, 326, 454], [328, 455, 329], [320, 316, 317], [320, 317, 321], [316, 312, 313], [316, 313, 317], [312, 308, 309], [312, 309, 313], [308, 306, 307], [308, 307, 309], [306, 302, 303], [306, 303, 307], [302, 298, 299], [302, 299, 303], [298, 294, 295], [298, 295, 299], [294, 292, 293], [294, 293, 295], [292, 288, 289], [292, 289, 293], [288, 284, 285], [288, 285, 289], [284, 280, 281], [284, 281, 285], [280, 278, 279], [280, 279, 281], [278, 274, 275], [278, 275, 279], [274, 270, 271], [274, 271, 275], [270, 266, 267], [270, 267, 271], [266, 264, 265], [266, 265, 267], [264, 260, 261], [264, 261, 265], [260, 256, 257], [260, 257, 261], [256, 252, 253], [256, 253, 257], [252, 250, 251], [252, 251, 253], [250, 246, 247], [250, 247, 251], [246, 242, 243], [246, 243, 247], [242, 238, 239], [242, 239, 243], [238, 232, 235], [238, 235, 239], [232, 233, 236], [232, 236, 235], [233, 432, 433], [233, 433, 236], [432, 428, 429], [432, 429, 433], [428, 426, 427], [428, 427, 429], [426, 422, 423], [426, 423, 427], [422, 418, 419], [422, 419, 423], [418, 414, 415], [418, 415, 419], [414, 412, 413], [414, 413, 415], [412, 408, 409], [412, 409, 413], [408, 404, 405], [408, 405, 409], [404, 400, 401], [404, 401, 405], [400, 398, 399], [400, 399, 401], [398, 394, 395], [398, 395, 399], [394, 390, 391], [394, 391, 395], [390, 386, 387], [390, 387, 391], [386, 384, 385], [386, 385, 387], [384, 380, 381], [384, 381, 385], [380, 376, 377], [380, 377, 381], [376, 372, 373], [376, 373, 377], [372, 370, 371], [372, 371, 373], [370, 366, 367], [370, 367, 371], [366, 362, 363], [366, 363, 367], [362, 358, 359], [362, 359, 363], [358, 356, 357], [358, 357, 359], [356, 352, 353], [356, 353, 357], [352, 348, 349], [352, 349, 353], [348, 344, 345], [348, 345, 349], [344, 342, 343], [344, 343, 345], [342, 338, 339], [342, 339, 343], [338, 334, 335], [338, 335, 339], [334, 330, 331], [334, 331, 335], [330, 324, 327], [330, 327, 331], [324, 325, 328], [324, 328, 327], [325, 452, 453], [325, 453, 328], [452, 448, 449], [452, 449, 453], [448, 446, 447], [448, 447, 449], [446, 442, 443], [446, 443, 447], [442, 438, 439], [442, 439, 443], [438, 322, 323], [438, 323, 439], [322, 320, 321], [322, 321, 323], [318, 315, 314], [318, 319, 315], [314, 311, 310], [314, 315, 311], [310, 305, 304], [310, 311, 305], [304, 301, 300], [304, 305, 301], [300, 297, 296], [300, 301, 297], [296, 291, 290], [296, 297, 291], [290, 287, 286], [290, 291, 287], [286, 283, 282], [286, 287, 283], [282, 277, 276], [282, 283, 277], [276, 273, 272], [276, 277, 273], [272, 269, 268], [272, 273, 269], [268, 263, 262], [268, 269, 263], [262, 259, 258], [262, 263, 259], [258, 255, 254], [258, 259, 255], [254, 249, 248], [254, 255, 249], [248, 245, 244], [248, 249, 245], [244, 241, 240], [244, 245, 241], [240, 237, 234], [240, 241, 237], [234, 435, 434], [234, 237, 435], [434, 431, 430], [434, 435, 431], [430, 425, 424], [430, 431, 425], [424, 421, 420], [424, 425, 421], [420, 417, 416], [420, 421, 417], [416, 411, 410], [416, 417, 411], [410, 407, 406], [410, 411, 407], [406, 403, 402], [406, 407, 403], [402, 397, 396], [402, 403, 397], [396, 393, 392], [396, 397, 393], [392, 389, 388], [392, 393, 389], [388, 383, 382], [388, 389, 383], [382, 379, 378], [382, 383, 379], [378, 375, 374], [378, 379, 375], [374, 369, 368], [374, 375, 369], [368, 365, 364], [368, 369, 365], [364, 361, 360], [364, 365, 361], [360, 355, 354], [360, 361, 355], [354, 351, 350], [354, 355, 351], [350, 347, 346], [350, 351, 347], [346, 341, 340], [346, 347, 341], [340, 337, 336], [340, 341, 337], [336, 333, 332], [336, 337, 333], [332, 329, 326], [332, 333, 329], [326, 455, 454], [326, 329, 455], [454, 451, 450], [454, 455, 451], [450, 445, 444], [450, 451, 445], [444, 441, 440], [444, 445, 441], [440, 437, 436], [440, 441, 437], [436, 319, 318], [436, 437, 319], [457, 459, 456], [460, 457, 456], [456, 459, 458], [458, 460, 456], [457, 463, 459], [461, 457, 460], [461, 463, 457], [459, 463, 458], [462, 460, 458], [458, 463, 462], [462, 461, 460], [463, 461, 462], [465, 467, 464], [468, 465, 464], [464, 467, 466], [466, 468, 464], [465, 471, 467], [469, 465, 468], [469, 471, 465], [467, 471, 466], [470, 468, 466], [466, 471, 470], [470, 469, 468], [471, 469, 470]], convexity=20);
